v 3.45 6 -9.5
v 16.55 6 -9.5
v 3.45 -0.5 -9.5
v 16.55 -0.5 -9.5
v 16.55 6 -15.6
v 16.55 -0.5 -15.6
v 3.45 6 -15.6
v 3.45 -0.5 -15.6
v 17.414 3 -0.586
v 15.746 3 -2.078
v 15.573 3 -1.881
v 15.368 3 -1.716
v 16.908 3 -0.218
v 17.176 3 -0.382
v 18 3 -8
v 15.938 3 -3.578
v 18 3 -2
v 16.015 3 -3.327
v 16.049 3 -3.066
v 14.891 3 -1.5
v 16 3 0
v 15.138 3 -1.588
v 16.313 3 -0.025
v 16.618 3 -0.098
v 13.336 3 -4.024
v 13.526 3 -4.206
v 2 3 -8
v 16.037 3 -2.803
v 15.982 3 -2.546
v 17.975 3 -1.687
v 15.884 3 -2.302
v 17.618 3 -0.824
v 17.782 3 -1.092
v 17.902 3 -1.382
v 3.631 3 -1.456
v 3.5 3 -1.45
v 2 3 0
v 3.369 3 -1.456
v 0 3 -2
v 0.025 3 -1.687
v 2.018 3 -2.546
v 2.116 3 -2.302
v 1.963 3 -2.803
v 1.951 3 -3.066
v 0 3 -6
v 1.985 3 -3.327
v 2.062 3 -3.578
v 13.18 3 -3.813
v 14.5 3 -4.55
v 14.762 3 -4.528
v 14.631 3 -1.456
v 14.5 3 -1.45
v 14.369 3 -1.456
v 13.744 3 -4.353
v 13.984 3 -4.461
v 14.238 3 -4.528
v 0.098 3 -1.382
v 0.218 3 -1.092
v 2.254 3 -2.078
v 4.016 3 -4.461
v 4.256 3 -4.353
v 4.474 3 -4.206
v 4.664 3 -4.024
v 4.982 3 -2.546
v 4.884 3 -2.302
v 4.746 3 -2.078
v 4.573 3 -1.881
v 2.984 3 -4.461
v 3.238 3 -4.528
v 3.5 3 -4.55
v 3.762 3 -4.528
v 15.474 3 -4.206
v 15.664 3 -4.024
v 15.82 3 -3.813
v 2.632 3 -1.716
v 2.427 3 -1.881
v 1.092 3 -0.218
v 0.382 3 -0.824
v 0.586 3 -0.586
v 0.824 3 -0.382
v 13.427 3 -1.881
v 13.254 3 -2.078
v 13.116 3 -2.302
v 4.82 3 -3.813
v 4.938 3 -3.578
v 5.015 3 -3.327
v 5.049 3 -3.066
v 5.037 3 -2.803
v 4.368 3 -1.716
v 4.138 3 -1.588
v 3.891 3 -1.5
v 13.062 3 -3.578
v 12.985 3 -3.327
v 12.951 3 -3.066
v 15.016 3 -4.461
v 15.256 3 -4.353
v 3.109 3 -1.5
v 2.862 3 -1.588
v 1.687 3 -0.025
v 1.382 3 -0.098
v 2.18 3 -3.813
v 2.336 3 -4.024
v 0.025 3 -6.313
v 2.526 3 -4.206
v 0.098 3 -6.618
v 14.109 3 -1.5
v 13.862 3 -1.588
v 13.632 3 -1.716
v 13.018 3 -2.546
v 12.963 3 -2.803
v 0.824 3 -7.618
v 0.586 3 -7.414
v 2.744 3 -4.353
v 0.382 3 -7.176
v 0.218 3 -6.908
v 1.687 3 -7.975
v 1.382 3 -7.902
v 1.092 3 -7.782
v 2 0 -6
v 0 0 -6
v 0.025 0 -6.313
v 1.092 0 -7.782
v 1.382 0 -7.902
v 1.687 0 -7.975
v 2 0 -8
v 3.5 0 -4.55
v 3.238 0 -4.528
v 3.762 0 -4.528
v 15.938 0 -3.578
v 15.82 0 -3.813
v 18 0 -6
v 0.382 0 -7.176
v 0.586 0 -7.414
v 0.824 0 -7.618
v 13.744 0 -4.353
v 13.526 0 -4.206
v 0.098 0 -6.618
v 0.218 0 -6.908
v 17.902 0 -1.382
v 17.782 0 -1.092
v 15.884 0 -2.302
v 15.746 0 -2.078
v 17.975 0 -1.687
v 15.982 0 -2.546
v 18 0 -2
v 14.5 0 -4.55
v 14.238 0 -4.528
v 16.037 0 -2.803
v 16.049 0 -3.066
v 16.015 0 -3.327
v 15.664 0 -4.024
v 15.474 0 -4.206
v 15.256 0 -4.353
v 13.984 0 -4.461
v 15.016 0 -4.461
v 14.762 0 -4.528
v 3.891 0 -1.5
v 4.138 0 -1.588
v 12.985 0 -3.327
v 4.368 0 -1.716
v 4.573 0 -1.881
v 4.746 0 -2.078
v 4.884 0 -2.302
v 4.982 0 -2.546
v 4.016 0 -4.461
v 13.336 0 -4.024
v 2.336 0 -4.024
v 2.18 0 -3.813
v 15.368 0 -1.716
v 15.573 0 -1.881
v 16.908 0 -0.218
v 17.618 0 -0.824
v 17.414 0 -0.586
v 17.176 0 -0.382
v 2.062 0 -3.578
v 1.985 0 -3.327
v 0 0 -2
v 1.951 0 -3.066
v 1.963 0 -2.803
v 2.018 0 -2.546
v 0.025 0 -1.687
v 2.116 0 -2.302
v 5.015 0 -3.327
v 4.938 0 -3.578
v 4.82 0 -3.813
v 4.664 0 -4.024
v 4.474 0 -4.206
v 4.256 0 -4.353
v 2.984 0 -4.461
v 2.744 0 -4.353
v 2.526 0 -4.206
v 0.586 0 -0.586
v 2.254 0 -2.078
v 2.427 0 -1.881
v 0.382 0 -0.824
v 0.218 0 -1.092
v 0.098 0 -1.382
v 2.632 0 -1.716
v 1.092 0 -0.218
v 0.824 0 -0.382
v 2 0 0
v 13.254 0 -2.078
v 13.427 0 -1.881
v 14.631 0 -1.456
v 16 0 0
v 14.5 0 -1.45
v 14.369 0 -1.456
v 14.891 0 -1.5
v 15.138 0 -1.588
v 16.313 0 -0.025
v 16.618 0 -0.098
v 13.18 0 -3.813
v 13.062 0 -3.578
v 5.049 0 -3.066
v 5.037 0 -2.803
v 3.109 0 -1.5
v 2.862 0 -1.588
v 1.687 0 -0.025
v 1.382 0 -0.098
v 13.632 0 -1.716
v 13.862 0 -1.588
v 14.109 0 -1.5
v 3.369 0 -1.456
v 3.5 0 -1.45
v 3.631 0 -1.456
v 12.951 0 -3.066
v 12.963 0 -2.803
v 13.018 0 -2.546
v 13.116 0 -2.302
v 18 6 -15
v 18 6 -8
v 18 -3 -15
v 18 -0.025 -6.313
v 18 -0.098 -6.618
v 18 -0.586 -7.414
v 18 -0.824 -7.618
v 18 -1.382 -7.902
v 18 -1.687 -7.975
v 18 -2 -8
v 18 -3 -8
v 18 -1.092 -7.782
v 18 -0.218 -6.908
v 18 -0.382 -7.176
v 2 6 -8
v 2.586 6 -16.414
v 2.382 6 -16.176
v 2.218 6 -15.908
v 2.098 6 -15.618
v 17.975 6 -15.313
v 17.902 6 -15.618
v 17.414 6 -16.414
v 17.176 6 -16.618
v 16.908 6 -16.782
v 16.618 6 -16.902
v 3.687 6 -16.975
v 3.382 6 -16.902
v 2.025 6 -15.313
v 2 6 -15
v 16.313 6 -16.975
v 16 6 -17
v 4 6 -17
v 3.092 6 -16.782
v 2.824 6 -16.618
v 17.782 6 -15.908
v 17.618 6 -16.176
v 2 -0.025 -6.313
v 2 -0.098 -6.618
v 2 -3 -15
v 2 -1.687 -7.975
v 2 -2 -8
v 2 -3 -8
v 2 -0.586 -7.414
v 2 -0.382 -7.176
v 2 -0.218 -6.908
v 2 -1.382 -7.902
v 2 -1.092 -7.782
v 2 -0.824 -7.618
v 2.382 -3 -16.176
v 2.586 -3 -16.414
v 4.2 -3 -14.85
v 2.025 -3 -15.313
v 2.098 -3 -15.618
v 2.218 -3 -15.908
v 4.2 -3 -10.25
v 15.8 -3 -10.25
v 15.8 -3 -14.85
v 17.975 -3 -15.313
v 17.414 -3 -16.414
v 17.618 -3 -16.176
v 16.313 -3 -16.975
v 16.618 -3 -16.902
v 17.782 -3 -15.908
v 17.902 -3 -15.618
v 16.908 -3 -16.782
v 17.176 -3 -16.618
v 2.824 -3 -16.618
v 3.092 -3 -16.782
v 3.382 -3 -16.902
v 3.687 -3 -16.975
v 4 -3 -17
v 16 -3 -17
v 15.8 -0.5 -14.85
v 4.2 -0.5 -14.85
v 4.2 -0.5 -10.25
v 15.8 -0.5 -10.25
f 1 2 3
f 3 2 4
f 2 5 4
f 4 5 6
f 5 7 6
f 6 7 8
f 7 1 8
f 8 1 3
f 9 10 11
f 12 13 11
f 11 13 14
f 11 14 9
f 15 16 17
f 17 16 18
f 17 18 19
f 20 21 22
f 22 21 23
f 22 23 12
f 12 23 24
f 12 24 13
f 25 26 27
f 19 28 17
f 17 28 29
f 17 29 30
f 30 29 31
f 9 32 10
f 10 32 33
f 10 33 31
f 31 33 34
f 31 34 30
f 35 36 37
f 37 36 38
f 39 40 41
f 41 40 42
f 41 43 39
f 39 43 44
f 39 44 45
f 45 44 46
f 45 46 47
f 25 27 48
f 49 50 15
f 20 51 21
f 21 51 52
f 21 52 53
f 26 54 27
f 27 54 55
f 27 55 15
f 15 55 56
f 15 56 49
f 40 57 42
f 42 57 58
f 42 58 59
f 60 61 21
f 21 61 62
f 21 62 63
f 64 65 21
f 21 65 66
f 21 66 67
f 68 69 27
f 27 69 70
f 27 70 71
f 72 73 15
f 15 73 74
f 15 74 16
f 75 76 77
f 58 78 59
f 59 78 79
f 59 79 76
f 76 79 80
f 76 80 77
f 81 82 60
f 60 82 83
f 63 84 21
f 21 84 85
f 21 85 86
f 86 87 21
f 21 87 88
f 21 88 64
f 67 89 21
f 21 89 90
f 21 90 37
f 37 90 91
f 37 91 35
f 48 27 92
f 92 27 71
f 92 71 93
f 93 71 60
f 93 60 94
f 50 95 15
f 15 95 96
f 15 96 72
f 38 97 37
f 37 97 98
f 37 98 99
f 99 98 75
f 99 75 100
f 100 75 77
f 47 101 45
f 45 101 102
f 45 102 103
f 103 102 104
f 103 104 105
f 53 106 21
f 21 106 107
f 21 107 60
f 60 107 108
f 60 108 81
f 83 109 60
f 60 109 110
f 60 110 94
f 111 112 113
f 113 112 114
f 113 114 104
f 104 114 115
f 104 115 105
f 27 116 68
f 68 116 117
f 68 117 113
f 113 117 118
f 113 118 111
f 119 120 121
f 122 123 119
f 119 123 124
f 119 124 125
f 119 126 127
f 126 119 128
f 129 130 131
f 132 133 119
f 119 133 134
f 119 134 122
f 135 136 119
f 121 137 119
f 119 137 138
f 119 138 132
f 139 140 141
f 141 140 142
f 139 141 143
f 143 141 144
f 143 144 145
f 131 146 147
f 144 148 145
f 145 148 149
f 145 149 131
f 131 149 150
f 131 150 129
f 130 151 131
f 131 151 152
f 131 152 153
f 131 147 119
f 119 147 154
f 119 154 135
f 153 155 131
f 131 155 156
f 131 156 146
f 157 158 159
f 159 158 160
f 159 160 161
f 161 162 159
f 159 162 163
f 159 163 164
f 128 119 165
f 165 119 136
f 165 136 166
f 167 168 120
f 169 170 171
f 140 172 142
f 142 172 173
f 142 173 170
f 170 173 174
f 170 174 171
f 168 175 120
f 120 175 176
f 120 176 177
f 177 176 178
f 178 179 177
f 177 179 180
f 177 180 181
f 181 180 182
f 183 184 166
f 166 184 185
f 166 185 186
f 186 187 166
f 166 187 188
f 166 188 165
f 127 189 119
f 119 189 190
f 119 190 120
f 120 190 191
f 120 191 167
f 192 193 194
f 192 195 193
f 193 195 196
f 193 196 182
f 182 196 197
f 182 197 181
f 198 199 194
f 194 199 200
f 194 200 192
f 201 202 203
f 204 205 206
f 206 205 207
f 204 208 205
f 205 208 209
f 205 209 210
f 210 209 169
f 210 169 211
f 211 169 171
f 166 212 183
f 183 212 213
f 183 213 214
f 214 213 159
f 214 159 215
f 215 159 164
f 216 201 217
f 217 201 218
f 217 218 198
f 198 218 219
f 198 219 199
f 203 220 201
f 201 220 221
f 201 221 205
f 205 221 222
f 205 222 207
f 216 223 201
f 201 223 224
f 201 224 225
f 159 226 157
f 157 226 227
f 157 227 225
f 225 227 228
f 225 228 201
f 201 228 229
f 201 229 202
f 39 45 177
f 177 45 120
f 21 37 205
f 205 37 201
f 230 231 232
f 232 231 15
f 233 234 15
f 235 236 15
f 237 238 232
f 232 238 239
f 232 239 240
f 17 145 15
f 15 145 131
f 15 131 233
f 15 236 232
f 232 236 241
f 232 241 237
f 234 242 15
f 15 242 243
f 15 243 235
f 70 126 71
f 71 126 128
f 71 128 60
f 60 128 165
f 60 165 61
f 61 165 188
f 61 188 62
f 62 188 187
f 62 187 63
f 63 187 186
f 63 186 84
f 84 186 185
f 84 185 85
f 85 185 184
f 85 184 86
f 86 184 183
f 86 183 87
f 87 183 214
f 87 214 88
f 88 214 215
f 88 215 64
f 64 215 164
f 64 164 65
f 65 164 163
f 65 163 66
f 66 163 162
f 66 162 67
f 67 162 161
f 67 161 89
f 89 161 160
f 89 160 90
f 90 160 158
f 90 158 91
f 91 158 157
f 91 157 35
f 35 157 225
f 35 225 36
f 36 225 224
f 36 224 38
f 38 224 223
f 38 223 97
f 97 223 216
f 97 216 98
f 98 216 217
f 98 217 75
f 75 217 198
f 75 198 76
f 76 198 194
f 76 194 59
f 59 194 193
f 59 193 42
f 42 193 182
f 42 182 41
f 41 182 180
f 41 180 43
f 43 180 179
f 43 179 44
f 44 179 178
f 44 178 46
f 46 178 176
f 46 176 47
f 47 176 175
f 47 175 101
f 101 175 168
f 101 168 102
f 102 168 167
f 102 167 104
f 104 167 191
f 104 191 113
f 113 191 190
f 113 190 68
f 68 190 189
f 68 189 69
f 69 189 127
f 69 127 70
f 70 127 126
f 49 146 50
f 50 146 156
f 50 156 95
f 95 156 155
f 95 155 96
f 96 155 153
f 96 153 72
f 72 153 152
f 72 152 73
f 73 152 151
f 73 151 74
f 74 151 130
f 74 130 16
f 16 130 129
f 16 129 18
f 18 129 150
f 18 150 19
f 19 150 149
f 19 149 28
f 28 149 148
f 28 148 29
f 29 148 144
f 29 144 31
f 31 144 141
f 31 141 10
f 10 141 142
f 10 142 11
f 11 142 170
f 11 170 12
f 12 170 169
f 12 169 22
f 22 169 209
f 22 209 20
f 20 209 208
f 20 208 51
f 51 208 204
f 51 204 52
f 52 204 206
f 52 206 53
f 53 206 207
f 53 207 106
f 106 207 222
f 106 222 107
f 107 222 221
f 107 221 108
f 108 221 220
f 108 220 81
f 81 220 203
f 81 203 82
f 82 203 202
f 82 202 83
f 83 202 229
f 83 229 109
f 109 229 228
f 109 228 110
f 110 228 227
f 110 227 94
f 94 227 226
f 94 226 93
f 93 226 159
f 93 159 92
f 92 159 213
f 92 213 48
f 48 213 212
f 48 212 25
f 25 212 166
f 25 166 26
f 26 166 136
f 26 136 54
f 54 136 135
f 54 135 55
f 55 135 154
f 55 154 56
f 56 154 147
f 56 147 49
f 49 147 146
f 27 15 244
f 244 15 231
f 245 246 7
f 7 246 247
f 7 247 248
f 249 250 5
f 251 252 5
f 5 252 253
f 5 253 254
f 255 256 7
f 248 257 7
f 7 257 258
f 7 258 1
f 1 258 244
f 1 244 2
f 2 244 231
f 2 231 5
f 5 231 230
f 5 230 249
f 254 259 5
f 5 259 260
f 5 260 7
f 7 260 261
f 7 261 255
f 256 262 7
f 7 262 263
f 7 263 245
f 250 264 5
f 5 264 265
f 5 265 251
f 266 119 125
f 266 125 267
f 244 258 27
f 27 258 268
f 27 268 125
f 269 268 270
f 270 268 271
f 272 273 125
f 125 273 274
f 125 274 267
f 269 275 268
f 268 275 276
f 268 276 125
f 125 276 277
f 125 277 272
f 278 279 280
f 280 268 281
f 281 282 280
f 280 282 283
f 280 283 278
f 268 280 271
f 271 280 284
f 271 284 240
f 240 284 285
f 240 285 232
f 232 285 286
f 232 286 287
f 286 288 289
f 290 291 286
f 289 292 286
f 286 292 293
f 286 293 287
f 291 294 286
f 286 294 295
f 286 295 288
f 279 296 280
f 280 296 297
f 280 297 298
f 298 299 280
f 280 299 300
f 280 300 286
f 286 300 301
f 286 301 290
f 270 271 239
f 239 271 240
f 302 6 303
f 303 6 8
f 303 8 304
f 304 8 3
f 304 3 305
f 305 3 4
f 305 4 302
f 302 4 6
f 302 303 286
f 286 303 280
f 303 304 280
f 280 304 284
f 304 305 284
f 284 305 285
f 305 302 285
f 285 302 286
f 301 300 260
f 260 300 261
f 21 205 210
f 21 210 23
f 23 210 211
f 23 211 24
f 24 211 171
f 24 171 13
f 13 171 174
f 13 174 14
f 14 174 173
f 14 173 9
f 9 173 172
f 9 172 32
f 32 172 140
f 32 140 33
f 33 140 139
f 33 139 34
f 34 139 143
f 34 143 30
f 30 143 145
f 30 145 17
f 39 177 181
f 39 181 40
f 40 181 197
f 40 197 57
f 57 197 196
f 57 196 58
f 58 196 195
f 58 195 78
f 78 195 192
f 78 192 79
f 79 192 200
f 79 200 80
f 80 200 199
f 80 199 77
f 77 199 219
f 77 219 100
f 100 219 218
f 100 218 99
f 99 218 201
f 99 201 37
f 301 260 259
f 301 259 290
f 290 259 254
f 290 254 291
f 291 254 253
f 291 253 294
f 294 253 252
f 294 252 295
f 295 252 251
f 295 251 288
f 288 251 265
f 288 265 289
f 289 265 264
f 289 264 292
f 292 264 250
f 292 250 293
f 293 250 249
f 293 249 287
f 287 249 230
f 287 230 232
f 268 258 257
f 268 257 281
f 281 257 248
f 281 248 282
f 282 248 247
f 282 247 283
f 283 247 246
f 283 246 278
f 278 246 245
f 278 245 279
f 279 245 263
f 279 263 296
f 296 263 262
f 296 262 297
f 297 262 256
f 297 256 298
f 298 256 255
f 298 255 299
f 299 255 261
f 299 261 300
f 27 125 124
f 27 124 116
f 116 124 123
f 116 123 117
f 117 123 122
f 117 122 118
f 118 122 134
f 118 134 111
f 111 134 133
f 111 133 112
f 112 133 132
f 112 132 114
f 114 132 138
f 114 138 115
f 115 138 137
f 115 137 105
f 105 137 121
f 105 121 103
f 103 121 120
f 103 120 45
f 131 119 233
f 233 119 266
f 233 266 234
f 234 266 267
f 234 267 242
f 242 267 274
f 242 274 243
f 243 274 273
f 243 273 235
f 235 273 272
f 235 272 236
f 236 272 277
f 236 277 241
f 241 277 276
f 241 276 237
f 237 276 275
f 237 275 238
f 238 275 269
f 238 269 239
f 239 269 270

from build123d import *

# Parameters (mm, degrees)
CROQUIS1_W              = 18
CROQUIS1_H              = 18
CROQUIS1_R              = 1.55
SALIENTE_EXTRUIR1_DEPTH = 3
CROQUIS3_W              = 18
CROQUIS3_H              = 10
SALIENTE_EXTRUIR3_DEPTH = 3
CORTAR_EXTRUIR1_REACH   = 28.153
CROQUIS4_W              = 2
CROQUIS4_H              = 10
CROQUIS7_W              = 13.1
CROQUIS7_H              = 6.1
CORTAR_EXTRUIR2_DEPTH   = 6
CROQUIS9_W              = 16
CROQUIS9_H              = 10
CROQUIS9_W_2            = 13.1
CROQUIS9_H_2            = 6.1
SALIENTE_EXTRUIR4_DEPTH = 3
CROQUIS10_W             = 13.1
CROQUIS10_H             = 6.1
CROQUIS10_W_2           = 11.6
CROQUIS10_H_2           = 4.6
SALIENTE_EXTRUIR6_DEPTH = 2.5
CROQUIS11_W             = 16
CROQUIS11_H             = 1
CORTAR_EXTRUIR4_DEPTH   = 9
REDONDEO1_R             = 2


with BuildPart() as part:
    # Croquis1 → Saliente-Extruir1 (new body)
    with BuildSketch(Plane(origin=(0, 0, 0), x_dir=(1, 0, 0), z_dir=(0, 1, 0))):
        with Locations((9, 9)):
            Rectangle(CROQUIS1_W, CROQUIS1_H)
        with Locations(Location((3.5, 3, 0), (0, 0, 270))):
            Circle(CROQUIS1_R, mode=Mode.SUBTRACT)
        with Locations(Location((14.5, 3, 0), (0, 0, 270))):
            Circle(CROQUIS1_R, mode=Mode.SUBTRACT)
    extrude(amount=SALIENTE_EXTRUIR1_DEPTH)

    # Croquis3 → Saliente-Extruir3 (add)
    with BuildSketch(Plane(origin=(0, 3, 0), x_dir=(1, 0, 0), z_dir=(0, 1, 0))):
        with Locations((9, 13)):
            Rectangle(CROQUIS3_W, CROQUIS3_H)
    extrude(amount=SALIENTE_EXTRUIR3_DEPTH)

    # Cortar-Extruir1: up to this face of the body (flat: up to its plane)
    cortar_extruir1_end = Plane(part.part.faces().sort_by_distance((9, 6, -13))[0])
    # Croquis4 → Cortar-Extruir1 (cut, up to the picked face)
    with BuildSketch(Plane.XZ, mode=Mode.PRIVATE) as cortar_extruir1_sk1:
        with Locations((1, -13)):
            Rectangle(CROQUIS4_W, CROQUIS4_H)
    cortar_extruir1_tool1 = split(extrude(cortar_extruir1_sk1.sketch, amount=-CORTAR_EXTRUIR1_REACH, mode=Mode.PRIVATE), bisect_by=cortar_extruir1_end, keep=Keep.BOTH, mode=Mode.PRIVATE)
    add(cortar_extruir1_tool1.solids().sort_by(Axis((1, 0, -13), (0, 1, 0)))[0], mode=Mode.SUBTRACT)

    # Croquis7 → Cortar-Extruir2 (cut)
    with BuildSketch(Plane(origin=(0, 6, 0), x_dir=(1, 0, 0), z_dir=(0, 1, 0))):
        with Locations((10, 12.55)):
            Rectangle(CROQUIS7_W, CROQUIS7_H)
    extrude(amount=-CORTAR_EXTRUIR2_DEPTH, mode=Mode.SUBTRACT)

    # Croquis9 → Saliente-Extruir4 (add)
    with BuildSketch(Plane.XZ):
        with Locations((10, -13)):
            Rectangle(CROQUIS9_W, CROQUIS9_H)
        with Locations((10, -12.55)):
            Rectangle(CROQUIS9_W_2, CROQUIS9_H_2, mode=Mode.SUBTRACT)
    extrude(amount=SALIENTE_EXTRUIR4_DEPTH)

    # Croquis10 → Saliente-Extruir6 (add)
    with BuildSketch(Plane.XZ.offset(3)):
        with Locations((10, -12.55)):
            Rectangle(CROQUIS10_W, CROQUIS10_H)
        with Locations((10, -12.55)):
            Rectangle(CROQUIS10_W_2, CROQUIS10_H_2, mode=Mode.SUBTRACT)
    extrude(amount=-SALIENTE_EXTRUIR6_DEPTH)

    # Croquis11 → Cortar-Extruir4 (cut)
    with BuildSketch(Plane(origin=(0, 6, 0), x_dir=(1, 0, 0), z_dir=(0, 1, 0))):
        with Locations((10, 17.5)):
            Rectangle(CROQUIS11_W, CROQUIS11_H)
    extrude(amount=-CORTAR_EXTRUIR4_DEPTH, mode=Mode.SUBTRACT)

    # Redondeo1
    redondeo1_edges = [part.edges().sort_by_distance(p)[0] for p in [
        (10, 0, -8),
    ]]
    fillet(redondeo1_edges, radius=REDONDEO1_R)
    redondeo1_2_edges = [part.edges().sort_by_distance(p)[0] for p in [
        (18, 1.5, -17),
        (2, 1.5, -17),
        (0, 1.5, -8),
        (18, 1.5, 0),
        (0, 1.5, 0),
    ]]
    fillet(redondeo1_2_edges, radius=REDONDEO1_R - 0.0001)  # a hair under: the kernel refuses the full size


solid = part.part
